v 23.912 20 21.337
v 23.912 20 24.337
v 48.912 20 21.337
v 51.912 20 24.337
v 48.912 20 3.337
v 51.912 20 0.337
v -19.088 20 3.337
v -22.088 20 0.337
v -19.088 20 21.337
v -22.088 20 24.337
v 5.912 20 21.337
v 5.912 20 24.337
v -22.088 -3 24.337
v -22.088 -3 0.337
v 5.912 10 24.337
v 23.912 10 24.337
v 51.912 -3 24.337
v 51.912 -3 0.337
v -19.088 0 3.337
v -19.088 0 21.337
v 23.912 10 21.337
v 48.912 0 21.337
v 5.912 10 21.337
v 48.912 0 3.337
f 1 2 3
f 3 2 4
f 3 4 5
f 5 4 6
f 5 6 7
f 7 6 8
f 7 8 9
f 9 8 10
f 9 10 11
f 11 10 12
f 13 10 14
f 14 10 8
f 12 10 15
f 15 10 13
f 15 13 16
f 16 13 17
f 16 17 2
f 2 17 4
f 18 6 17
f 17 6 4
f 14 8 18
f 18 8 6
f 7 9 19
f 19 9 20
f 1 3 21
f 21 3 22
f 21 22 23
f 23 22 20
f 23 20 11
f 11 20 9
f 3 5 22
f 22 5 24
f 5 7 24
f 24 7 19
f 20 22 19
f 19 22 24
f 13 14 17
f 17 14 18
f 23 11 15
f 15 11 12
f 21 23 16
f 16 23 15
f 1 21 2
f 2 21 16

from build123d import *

# Parameters (mm, degrees)
SKETCH1_W           = 74
SKETCH1_H           = 24
SKETCH1_W_2         = 68
SKETCH1_H_2         = 18
BOSS_EXTRUDE1_DEPTH = 20
SKETCH1_3_W         = 74
SKETCH1_3_H         = 24
BOSS_EXTRUDE2_DEPTH = 3
CUT_EXTRUDE1_REACH  = 61.463
SKETCH4_W           = 18
SKETCH4_H           = 10


with BuildPart() as part:
    # Sketch1 → Boss-Extrude1 (new body)
    with BuildSketch(Plane(origin=(0, 0, 0), x_dir=(1, 0, 0), z_dir=(0, 1, 0))):
        with Locations((14.912280702, -12.336842105)):
            Rectangle(SKETCH1_W, SKETCH1_H)
        with Locations((14.912280702, -12.336842105)):
            Rectangle(SKETCH1_W_2, SKETCH1_H_2, mode=Mode.SUBTRACT)
    extrude(amount=BOSS_EXTRUDE1_DEPTH)

    # Sketch1<3> → Boss-Extrude2 (add)
    with BuildSketch(Plane(origin=(0, 0, 0), x_dir=(1, 0, 0), z_dir=(0, 1, 0))):
        with Locations((14.912280702, -12.336842105)):
            Rectangle(SKETCH1_3_W, SKETCH1_3_H)
    extrude(amount=-BOSS_EXTRUDE2_DEPTH)

    # Sketch4 → Cut-Extrude1 (cut, up to next)
    with BuildSketch(Plane(origin=(0, 0, 21.336842105), x_dir=(-1, 0, 0), z_dir=(0, 0, -1)), mode=Mode.PRIVATE) as cut_extrude1_sk1:
        with Locations((-14.912280702, 15)):
            Rectangle(SKETCH4_W, SKETCH4_H)
    cut_extrude1_tool1 = extrude(cut_extrude1_sk1.sketch, amount=-CUT_EXTRUDE1_REACH, mode=Mode.PRIVATE) & part.part
    add(cut_extrude1_tool1.solids().sort_by_distance((14.912281, 15, 21.336842))[0], mode=Mode.SUBTRACT)


solid = part.part
